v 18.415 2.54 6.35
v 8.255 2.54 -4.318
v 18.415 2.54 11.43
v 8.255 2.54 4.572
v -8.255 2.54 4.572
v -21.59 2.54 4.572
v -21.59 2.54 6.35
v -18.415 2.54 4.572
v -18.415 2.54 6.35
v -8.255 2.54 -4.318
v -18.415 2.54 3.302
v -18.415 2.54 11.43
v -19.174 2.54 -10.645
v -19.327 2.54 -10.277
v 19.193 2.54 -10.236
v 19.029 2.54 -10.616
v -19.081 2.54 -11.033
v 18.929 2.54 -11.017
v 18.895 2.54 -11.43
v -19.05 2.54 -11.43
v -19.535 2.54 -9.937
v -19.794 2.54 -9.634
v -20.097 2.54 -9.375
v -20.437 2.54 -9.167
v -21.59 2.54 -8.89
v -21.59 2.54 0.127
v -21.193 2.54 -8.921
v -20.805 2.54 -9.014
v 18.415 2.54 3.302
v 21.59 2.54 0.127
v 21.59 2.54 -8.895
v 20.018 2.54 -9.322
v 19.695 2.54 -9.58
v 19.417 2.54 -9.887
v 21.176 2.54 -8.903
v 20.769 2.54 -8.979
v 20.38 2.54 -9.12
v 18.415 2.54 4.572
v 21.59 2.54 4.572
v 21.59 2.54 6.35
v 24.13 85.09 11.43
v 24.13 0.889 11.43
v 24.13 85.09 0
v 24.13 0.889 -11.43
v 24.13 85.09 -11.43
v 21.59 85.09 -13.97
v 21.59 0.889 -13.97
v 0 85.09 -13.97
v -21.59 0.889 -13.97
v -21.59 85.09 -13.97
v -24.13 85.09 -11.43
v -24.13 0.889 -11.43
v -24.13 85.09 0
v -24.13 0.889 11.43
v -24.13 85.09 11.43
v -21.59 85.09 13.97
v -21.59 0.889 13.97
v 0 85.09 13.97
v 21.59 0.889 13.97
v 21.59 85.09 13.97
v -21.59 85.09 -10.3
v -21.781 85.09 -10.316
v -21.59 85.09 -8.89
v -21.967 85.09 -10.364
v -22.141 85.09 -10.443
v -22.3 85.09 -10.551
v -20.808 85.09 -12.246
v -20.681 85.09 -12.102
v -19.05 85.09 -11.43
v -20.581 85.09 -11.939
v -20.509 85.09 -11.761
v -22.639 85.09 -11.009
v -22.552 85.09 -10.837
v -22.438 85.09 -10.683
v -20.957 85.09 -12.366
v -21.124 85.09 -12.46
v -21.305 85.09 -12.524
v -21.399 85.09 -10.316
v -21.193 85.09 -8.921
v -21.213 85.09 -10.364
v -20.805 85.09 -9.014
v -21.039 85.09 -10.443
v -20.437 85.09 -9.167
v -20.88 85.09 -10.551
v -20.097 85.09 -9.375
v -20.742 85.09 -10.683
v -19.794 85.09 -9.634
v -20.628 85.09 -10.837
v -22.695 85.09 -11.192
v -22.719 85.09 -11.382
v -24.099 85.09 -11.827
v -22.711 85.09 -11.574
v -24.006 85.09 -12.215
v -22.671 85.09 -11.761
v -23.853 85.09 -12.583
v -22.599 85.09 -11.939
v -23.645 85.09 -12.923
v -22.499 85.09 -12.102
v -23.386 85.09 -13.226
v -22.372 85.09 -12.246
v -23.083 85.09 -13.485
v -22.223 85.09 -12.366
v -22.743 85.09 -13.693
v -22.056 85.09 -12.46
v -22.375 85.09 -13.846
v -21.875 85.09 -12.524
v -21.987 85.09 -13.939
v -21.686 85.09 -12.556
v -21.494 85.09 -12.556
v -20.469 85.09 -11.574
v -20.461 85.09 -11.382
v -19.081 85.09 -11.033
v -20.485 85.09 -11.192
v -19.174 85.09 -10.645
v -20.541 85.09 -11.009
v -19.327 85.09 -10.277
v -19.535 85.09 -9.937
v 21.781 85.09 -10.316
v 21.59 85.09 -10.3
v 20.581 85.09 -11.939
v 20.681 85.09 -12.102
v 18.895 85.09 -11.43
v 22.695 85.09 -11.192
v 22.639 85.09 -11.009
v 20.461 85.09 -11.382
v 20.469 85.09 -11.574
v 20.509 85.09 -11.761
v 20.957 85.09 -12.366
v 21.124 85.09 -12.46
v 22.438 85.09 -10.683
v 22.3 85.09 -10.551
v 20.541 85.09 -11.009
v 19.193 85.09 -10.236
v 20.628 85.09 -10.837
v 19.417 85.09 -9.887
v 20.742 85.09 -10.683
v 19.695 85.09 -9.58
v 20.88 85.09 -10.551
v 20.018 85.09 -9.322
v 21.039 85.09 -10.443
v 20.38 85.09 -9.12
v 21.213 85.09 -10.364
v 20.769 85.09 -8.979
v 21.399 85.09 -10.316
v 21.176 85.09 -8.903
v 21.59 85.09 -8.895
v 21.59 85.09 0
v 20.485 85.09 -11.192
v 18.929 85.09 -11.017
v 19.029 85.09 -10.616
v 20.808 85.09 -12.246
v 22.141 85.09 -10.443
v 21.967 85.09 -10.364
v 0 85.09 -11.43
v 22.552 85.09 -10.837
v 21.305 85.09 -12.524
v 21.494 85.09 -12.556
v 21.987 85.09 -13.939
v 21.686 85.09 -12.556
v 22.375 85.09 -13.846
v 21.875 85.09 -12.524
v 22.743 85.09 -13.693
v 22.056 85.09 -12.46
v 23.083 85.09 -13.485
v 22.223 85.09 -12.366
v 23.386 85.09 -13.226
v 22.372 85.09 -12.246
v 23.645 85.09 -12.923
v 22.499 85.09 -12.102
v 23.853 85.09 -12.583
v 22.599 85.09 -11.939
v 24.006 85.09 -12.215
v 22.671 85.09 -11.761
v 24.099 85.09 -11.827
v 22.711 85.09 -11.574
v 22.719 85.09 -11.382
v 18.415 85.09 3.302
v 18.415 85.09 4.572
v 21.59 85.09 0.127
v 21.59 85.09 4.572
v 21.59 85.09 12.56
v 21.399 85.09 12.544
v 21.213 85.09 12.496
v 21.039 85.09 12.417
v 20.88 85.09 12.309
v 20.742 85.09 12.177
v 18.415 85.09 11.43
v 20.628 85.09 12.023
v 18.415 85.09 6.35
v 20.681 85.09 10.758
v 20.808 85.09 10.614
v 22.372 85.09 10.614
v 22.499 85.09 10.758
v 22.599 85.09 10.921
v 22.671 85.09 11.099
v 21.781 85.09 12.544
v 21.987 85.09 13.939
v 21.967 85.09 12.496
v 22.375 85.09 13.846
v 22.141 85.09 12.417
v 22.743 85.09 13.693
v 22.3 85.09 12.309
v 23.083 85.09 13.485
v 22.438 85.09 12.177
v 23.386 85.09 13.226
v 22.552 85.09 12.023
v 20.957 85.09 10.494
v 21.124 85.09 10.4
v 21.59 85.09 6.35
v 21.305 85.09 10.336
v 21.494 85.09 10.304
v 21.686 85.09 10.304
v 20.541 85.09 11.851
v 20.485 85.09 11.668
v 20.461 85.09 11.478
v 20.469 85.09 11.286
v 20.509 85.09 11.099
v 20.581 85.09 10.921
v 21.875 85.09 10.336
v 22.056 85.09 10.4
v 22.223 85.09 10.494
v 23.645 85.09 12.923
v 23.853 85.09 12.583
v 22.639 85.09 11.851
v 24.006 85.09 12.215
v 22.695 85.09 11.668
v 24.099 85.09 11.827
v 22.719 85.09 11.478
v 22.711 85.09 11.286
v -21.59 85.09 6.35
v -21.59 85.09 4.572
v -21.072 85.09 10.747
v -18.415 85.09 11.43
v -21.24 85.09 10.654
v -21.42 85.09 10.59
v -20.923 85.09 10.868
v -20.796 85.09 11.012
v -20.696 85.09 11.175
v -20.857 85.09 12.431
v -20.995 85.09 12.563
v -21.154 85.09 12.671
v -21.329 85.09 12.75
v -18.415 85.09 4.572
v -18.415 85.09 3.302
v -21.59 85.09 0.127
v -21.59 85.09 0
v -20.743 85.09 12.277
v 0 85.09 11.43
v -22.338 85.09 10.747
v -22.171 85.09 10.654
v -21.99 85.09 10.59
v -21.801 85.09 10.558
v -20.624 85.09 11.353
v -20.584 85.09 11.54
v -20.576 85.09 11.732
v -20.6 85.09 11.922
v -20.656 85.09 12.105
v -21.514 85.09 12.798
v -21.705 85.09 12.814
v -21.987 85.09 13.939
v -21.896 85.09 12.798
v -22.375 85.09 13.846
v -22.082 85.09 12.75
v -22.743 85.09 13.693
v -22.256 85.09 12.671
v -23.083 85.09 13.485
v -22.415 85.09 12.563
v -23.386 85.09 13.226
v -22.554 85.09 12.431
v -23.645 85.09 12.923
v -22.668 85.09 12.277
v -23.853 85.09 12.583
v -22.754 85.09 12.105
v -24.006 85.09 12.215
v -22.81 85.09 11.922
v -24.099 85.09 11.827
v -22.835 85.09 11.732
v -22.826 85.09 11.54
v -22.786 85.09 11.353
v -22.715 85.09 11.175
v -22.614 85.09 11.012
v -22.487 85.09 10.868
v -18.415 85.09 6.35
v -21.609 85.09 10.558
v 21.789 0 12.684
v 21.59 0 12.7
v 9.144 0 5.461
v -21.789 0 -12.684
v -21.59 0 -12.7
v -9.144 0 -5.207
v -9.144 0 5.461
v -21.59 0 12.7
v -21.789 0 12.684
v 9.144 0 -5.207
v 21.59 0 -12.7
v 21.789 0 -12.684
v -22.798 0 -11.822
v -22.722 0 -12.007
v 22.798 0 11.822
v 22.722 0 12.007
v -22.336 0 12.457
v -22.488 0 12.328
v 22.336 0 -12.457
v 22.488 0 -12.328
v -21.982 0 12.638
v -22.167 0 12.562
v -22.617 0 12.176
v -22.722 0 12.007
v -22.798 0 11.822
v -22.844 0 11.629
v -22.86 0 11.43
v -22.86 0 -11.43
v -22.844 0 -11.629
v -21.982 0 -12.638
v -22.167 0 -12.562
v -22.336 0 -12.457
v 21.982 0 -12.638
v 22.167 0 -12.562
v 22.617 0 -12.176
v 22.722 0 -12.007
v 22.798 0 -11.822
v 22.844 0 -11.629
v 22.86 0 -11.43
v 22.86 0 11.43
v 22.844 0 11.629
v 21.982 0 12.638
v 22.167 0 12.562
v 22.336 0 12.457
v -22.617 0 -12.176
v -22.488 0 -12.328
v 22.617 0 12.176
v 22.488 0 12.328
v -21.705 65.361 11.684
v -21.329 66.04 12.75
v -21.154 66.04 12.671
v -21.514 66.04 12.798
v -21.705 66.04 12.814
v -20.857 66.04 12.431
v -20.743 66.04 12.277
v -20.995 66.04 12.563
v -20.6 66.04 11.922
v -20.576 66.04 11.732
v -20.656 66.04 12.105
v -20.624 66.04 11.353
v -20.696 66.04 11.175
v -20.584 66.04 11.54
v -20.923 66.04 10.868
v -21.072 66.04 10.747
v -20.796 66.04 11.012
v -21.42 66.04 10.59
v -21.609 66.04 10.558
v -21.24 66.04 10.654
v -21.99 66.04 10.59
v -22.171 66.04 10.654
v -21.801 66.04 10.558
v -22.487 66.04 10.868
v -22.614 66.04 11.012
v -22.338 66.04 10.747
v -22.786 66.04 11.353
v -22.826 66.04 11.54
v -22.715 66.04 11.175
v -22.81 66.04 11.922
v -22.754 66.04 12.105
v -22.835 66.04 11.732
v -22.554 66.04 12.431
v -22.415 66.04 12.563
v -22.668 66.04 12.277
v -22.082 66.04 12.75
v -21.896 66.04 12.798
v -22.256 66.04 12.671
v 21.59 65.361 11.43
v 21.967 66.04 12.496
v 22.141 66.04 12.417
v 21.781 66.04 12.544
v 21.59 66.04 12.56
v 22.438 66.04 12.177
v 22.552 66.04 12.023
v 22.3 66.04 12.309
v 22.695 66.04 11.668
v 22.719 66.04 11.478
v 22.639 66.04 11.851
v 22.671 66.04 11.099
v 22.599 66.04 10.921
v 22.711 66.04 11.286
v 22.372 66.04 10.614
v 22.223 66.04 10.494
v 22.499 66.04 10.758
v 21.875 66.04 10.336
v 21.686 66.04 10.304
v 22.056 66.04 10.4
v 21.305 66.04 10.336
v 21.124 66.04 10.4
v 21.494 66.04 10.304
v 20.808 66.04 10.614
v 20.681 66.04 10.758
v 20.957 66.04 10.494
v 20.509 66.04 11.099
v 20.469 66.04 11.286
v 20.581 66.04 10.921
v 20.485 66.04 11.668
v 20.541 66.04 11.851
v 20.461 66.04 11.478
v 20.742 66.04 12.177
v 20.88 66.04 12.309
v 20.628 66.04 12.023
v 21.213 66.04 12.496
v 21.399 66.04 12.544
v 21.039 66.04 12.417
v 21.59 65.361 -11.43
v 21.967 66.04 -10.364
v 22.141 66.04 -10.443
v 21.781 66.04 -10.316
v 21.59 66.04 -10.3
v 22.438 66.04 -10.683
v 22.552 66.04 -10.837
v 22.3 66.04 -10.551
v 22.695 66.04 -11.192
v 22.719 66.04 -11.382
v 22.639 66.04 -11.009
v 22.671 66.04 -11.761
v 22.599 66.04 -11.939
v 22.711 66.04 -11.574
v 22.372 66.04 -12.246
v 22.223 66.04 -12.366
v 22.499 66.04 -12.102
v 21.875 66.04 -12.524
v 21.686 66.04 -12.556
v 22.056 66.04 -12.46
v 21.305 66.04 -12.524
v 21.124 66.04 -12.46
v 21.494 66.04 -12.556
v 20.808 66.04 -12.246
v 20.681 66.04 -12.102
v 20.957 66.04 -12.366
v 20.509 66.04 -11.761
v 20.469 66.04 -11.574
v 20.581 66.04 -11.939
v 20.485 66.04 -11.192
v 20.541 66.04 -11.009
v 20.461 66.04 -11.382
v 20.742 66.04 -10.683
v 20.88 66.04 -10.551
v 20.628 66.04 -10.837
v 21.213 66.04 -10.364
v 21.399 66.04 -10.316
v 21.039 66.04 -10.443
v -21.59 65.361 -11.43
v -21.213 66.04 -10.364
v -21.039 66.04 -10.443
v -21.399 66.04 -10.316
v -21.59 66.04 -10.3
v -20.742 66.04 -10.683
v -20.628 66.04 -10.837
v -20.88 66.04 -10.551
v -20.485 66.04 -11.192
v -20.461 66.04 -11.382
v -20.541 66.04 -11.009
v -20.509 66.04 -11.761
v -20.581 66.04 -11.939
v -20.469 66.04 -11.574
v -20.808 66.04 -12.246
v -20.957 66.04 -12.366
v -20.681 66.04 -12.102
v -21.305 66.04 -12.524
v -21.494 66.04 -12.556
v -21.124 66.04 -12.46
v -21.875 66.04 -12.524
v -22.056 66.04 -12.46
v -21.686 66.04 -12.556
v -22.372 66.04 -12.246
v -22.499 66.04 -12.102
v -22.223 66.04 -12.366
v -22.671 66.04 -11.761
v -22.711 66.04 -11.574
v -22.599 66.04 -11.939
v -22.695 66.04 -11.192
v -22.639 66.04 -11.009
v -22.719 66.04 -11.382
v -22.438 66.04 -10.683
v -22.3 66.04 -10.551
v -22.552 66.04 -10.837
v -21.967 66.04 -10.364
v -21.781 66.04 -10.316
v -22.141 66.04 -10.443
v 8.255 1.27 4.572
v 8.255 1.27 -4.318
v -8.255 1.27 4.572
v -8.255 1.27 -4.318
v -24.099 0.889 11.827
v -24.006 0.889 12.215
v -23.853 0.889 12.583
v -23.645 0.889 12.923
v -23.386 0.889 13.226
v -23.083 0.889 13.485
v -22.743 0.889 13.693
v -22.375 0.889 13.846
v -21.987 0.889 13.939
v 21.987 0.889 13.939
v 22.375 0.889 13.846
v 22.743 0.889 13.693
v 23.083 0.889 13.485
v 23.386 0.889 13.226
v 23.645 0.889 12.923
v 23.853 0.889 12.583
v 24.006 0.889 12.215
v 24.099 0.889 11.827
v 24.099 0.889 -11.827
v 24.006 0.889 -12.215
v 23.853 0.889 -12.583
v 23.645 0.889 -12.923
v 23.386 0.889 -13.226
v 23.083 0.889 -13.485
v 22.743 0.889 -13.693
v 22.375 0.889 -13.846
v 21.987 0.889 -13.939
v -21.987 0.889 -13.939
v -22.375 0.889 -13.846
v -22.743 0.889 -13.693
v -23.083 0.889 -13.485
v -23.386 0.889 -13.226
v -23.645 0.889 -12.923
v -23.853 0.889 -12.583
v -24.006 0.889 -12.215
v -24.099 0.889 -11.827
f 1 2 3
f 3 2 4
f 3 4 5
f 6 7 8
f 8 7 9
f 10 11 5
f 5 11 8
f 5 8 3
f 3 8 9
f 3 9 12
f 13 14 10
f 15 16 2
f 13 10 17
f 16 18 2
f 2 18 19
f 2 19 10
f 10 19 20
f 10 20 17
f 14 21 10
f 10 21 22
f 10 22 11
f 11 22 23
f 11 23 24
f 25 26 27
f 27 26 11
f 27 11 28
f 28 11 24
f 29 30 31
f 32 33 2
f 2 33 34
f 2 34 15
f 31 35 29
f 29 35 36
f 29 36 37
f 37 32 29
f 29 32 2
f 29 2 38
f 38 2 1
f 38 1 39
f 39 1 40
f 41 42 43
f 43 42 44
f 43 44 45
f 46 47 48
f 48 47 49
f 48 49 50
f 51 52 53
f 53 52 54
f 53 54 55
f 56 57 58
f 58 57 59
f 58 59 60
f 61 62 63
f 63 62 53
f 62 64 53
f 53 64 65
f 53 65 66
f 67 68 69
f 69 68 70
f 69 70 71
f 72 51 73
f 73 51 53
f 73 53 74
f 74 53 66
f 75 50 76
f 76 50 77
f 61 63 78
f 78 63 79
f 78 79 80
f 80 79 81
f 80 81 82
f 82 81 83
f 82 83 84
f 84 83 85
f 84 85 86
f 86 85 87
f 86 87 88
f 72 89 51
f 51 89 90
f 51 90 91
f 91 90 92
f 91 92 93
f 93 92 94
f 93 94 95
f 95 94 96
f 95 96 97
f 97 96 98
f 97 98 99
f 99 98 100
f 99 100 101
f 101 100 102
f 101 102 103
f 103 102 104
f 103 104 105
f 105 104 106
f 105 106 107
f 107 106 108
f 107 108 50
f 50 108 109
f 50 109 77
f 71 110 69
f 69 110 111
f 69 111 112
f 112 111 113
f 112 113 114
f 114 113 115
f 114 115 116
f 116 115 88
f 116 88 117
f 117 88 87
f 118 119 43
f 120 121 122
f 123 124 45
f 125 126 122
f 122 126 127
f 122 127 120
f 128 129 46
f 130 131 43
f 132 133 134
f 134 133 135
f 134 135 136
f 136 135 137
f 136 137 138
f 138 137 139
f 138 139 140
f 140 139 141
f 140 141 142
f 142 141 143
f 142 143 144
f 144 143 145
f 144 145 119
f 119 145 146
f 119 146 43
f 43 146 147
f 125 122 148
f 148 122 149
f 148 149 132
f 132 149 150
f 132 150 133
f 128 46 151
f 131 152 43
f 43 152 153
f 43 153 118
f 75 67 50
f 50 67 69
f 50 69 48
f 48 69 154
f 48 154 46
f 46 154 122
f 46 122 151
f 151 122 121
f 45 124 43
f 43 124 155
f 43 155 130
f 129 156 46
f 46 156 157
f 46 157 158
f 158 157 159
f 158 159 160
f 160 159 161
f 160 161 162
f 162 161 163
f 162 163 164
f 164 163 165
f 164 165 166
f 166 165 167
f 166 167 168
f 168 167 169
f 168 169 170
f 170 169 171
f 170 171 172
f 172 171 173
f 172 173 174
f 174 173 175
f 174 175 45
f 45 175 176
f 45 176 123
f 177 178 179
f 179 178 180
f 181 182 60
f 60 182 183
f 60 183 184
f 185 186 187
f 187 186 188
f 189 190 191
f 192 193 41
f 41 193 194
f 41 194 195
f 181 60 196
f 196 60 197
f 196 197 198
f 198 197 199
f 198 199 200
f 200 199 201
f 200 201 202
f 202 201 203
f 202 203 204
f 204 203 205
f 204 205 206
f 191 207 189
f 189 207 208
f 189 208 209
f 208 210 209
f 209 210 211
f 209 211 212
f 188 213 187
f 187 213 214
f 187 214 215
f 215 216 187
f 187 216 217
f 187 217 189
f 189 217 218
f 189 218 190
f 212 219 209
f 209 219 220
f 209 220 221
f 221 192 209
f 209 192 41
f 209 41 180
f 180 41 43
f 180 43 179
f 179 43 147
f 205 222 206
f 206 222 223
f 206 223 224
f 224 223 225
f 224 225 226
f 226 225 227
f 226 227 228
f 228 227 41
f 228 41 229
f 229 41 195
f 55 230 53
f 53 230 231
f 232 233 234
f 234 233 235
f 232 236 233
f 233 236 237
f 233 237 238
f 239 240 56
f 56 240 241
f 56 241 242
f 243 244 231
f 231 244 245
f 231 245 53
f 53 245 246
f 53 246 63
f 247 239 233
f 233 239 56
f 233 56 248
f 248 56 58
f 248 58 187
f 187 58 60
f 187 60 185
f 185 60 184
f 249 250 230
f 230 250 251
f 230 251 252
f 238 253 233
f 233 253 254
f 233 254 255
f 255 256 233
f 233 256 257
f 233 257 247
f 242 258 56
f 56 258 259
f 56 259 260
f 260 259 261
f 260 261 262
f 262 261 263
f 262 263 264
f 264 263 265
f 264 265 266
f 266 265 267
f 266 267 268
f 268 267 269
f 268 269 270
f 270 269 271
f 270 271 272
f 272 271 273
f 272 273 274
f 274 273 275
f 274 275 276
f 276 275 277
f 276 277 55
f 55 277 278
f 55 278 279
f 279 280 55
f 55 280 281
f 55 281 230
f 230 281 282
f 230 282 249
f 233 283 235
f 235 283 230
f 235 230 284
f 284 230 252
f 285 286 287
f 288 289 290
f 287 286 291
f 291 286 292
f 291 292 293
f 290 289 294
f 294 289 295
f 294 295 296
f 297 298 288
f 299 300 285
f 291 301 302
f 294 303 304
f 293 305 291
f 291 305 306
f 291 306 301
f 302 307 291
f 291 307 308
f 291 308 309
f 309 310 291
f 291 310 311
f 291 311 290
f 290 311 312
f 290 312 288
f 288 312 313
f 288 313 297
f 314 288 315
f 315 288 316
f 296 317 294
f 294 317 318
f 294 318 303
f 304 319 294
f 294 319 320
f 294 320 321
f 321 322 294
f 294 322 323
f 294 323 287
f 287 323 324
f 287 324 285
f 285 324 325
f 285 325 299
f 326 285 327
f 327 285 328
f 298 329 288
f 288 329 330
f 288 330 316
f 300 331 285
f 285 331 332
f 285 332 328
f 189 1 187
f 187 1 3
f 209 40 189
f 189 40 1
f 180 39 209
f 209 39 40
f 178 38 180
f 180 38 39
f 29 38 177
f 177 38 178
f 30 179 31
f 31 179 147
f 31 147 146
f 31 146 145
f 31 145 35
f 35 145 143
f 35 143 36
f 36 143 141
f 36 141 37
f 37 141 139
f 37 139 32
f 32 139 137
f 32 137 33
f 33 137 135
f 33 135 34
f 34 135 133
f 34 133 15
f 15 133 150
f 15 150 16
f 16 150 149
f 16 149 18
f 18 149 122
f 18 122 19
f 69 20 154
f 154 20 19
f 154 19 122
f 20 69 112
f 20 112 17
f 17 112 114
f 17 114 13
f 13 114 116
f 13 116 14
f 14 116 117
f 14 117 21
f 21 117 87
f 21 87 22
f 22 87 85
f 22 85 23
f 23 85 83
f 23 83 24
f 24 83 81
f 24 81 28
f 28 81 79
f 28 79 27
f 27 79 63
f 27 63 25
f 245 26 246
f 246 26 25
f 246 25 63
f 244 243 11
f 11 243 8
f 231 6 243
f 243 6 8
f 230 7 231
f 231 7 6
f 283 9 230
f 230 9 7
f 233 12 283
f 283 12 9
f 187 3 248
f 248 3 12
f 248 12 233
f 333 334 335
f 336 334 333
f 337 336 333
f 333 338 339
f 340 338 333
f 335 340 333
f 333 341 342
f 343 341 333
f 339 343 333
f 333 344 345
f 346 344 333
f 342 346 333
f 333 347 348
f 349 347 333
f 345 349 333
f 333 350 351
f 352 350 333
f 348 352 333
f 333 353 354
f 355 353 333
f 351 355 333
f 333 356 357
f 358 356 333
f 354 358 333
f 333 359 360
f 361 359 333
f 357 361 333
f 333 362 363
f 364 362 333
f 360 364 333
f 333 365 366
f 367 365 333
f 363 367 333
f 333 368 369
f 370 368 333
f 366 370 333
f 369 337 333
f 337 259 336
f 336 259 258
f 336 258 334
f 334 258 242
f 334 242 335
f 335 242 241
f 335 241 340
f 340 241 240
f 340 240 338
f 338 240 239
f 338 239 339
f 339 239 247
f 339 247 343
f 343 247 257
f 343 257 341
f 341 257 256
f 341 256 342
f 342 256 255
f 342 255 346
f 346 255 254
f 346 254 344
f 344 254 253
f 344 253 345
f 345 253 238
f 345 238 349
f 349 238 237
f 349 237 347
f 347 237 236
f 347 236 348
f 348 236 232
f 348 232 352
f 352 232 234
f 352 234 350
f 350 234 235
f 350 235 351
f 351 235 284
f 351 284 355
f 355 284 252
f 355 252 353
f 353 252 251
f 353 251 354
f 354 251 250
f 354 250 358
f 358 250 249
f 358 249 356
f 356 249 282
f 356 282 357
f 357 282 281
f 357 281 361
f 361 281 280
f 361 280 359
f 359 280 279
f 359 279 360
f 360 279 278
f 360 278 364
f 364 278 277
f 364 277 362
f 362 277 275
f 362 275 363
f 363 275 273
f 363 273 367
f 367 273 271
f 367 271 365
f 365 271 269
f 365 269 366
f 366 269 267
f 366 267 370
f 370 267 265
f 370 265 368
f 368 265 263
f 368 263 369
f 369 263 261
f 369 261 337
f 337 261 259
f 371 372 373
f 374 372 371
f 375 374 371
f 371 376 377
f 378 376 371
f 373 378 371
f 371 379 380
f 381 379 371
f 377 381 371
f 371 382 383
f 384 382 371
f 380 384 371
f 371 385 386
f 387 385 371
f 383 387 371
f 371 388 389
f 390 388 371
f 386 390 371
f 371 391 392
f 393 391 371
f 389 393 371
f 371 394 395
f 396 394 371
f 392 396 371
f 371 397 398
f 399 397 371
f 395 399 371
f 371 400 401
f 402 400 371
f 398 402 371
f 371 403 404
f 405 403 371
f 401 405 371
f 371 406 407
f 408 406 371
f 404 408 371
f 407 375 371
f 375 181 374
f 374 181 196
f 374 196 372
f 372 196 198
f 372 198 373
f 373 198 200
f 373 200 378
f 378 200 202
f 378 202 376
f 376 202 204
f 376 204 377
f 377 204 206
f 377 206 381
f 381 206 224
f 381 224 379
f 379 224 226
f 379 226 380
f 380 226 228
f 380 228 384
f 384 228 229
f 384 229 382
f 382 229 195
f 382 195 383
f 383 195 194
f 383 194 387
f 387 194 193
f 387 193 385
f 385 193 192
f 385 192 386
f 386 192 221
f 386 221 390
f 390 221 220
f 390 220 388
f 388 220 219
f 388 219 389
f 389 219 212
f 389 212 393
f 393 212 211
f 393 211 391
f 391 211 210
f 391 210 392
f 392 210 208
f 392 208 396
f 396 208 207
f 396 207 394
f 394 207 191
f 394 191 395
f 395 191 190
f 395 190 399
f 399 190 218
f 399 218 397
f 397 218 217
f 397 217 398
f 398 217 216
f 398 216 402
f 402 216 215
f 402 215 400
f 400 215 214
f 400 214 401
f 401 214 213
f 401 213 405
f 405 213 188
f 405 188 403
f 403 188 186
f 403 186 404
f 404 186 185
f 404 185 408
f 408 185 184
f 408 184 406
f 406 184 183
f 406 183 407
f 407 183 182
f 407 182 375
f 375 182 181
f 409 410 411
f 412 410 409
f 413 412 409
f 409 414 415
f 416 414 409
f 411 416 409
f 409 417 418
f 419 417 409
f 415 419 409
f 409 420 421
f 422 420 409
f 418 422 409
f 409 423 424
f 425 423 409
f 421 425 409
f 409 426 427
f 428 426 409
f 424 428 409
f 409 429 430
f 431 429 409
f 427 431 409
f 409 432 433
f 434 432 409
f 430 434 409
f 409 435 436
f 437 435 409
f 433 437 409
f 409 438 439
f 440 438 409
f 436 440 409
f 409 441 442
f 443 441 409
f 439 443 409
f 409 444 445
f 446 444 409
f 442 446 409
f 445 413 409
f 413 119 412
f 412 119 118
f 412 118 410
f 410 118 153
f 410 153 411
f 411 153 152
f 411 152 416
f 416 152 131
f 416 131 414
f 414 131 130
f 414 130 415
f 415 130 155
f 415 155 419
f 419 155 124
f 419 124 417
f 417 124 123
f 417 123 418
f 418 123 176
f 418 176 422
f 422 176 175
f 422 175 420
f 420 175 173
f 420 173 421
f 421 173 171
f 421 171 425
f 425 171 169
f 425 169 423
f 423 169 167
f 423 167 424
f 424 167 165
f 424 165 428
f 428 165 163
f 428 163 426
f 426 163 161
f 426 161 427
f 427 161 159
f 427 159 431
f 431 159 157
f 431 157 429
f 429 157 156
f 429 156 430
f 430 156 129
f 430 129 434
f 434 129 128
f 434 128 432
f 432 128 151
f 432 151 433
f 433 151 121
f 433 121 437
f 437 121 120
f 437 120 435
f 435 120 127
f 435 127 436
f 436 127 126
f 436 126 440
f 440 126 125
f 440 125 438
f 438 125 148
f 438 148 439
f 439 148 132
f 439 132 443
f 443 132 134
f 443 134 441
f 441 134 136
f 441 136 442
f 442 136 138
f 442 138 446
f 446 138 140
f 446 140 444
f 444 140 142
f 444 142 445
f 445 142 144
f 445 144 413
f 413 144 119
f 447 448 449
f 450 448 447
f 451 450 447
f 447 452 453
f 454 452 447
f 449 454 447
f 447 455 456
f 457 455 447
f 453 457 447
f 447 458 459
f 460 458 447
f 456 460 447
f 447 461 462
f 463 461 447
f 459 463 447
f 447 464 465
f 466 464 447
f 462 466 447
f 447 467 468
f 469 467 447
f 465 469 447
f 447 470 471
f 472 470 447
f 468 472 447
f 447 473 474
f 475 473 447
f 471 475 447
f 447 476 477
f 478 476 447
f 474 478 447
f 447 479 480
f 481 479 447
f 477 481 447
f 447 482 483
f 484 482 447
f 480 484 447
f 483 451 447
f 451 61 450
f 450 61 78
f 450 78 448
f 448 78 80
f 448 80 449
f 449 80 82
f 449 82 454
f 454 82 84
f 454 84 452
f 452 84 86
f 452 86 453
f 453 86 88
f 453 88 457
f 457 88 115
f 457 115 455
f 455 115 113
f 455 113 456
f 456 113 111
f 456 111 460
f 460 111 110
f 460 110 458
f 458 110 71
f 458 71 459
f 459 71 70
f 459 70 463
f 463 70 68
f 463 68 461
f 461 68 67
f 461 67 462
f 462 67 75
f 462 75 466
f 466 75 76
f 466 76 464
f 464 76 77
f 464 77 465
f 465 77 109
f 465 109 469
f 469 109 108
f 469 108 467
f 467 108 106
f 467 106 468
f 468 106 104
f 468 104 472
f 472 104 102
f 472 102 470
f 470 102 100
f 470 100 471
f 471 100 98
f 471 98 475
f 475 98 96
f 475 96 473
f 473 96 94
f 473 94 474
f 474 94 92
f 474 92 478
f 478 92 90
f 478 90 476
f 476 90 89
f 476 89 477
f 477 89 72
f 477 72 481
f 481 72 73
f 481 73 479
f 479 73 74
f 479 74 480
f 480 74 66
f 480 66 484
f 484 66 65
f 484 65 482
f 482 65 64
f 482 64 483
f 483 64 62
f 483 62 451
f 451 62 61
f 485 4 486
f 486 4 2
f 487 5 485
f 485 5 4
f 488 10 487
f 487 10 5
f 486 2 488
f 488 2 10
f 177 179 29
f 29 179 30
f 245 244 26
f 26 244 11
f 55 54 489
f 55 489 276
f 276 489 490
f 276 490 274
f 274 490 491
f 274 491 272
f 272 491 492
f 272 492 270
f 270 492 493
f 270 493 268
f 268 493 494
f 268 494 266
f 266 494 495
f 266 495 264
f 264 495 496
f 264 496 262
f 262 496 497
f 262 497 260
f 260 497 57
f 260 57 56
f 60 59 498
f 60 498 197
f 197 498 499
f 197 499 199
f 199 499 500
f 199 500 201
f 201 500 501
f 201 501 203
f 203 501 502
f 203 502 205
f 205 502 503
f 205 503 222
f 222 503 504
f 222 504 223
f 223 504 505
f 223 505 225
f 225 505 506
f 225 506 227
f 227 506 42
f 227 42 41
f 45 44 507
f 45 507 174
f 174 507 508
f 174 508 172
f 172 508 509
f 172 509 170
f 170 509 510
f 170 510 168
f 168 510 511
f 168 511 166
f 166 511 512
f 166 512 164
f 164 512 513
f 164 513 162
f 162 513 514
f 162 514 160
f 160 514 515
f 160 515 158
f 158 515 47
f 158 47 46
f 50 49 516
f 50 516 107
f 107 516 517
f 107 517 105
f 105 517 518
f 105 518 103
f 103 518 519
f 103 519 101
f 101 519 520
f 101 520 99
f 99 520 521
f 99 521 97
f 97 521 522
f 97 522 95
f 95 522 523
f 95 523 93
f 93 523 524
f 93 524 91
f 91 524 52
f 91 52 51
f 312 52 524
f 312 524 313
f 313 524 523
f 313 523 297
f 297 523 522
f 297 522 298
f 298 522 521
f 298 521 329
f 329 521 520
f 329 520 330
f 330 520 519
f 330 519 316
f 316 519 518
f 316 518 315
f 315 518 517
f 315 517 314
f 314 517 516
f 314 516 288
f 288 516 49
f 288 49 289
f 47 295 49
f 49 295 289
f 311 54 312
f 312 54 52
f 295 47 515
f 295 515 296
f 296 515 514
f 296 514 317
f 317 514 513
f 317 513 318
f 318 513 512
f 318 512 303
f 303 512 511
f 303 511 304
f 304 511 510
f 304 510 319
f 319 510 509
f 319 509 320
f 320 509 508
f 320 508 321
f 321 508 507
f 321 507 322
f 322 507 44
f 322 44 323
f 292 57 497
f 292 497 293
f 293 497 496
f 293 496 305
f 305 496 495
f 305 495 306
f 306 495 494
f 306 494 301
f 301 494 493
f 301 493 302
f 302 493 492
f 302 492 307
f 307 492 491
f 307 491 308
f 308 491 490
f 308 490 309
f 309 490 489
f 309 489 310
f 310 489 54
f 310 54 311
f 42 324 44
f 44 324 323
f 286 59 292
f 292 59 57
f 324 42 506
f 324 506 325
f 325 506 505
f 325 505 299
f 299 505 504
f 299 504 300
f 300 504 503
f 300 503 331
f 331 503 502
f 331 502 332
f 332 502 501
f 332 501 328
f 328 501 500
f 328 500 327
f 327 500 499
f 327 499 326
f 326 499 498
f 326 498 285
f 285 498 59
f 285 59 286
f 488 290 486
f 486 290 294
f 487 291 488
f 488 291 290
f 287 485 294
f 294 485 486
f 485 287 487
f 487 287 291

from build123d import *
from OCP.BRepFilletAPI import BRepFilletAPI_MakeChamfer

# Parameters (mm, degrees)
SKETCH1_W                       = 48.26
SKETCH1_H                       = 27.94
BOSS_EXTRUDE1_DEPTH             = 85.09
CUT_EXTRUDE1_DEPTH              = 82.55
F_43_0_089_DIAMETER_HOLE1_D     = 2.2606
F_43_0_089_DIAMETER_HOLE1_DEPTH = 19.05
F_43_0_089_DIAMETER_HOLE1_TIP   = 0.679152758
SKETCH4_W                       = 16.51
SKETCH4_H                       = 8.89
CUT_EXTRUDE2_DEPTH              = 88.13162629
CHAMFER1_SIZE                   = 3.81
FILLET1_R                       = 2.54
CHAMFER2_SIZE                   = 1.27
CHAMFER2_SIZE2                  = 0.889263574


with BuildPart() as part:
    # Sketch1 → Boss-Extrude1 (new body)
    with BuildSketch(Plane(origin=(0, 0, 0), x_dir=(1, 0, 0), z_dir=(0, 1, 0))):
        Rectangle(SKETCH1_W, SKETCH1_H)
    extrude(amount=BOSS_EXTRUDE1_DEPTH)

    # Sketch3 → Cut-Extrude1 (cut)
    with BuildSketch(Plane(origin=(0, 85.09, 0), x_dir=(1, 0, 0), z_dir=(0, 1, 0))):
        with BuildLine():
            Line((21.59, 0.508), (18.415, 0.508))
            Line((18.415, 0.508), (18.415, -4.572))
            Line((18.415, -4.572), (21.59, -4.572))
            Line((21.59, -4.572), (21.59, -6.35))
            Line((21.59, -6.35), (18.415, -6.35))
            Line((18.415, -6.35), (18.415, -11.43))
            Line((18.415, -11.43), (-18.415, -11.43))
            Line((-18.415, -11.43), (-18.415, -6.35))
            Line((-18.415, -6.35), (-21.59, -6.35))
            Line((-21.59, -6.35), (-21.59, -4.572))
            Line((-21.59, -4.572), (-18.415, -4.572))
            Line((-18.415, -4.572), (-18.415, 0.508))
            Line((-18.415, 0.508), (-21.59, 0.508))
            Line((-21.59, 0.508), (-21.59, 8.89))
            ThreePointArc((-21.59, 8.89), (-19.793948776, 9.633948776), (-19.05, 11.43))
            Line((-19.05, 11.43), (18.895098563, 11.43))
            ThreePointArc((18.895098563, 11.43), (19.694674714, 9.57999329), (21.59, 8.894727718))
            Line((21.59, 8.894727718), (21.59, 0.508))
        make_face()
    extrude(amount=-CUT_EXTRUDE1_DEPTH, mode=Mode.SUBTRACT)

    # #43 (0.089) Diameter Hole1
    with Locations(Plane(origin=(0, 85.09, 0), x_dir=(1, 0, 0), z_dir=(0, 1, 0))):
        with Locations((-21.59, 11.43), (21.59, 11.43), (21.59, -11.43), (-21.705255142, -11.683941121)):
            Hole(F_43_0_089_DIAMETER_HOLE1_D / 2, depth=F_43_0_089_DIAMETER_HOLE1_DEPTH)
            with Locations((0, 0, -(F_43_0_089_DIAMETER_HOLE1_DEPTH + F_43_0_089_DIAMETER_HOLE1_TIP / 2))):  # 118° drill point
                Cone(0, F_43_0_089_DIAMETER_HOLE1_D / 2, F_43_0_089_DIAMETER_HOLE1_TIP, mode=Mode.SUBTRACT)

    # Sketch4 → Cut-Extrude2 (cut, through all)
    with BuildSketch(Plane(origin=(0, 2.54, 0), x_dir=(1, 0, 0), z_dir=(0, 1, 0))):
        with Locations((0, -0.127)):
            Rectangle(SKETCH4_W, SKETCH4_H)
    extrude(amount=-CUT_EXTRUDE2_DEPTH, mode=Mode.SUBTRACT)

    # Chamfer1
    # the kernel refuses this chamfer: 3.81 mm, written as the material it takes off along each edge
    with BuildSketch(Plane(origin=(18.415, 94.888112184, -0.508), x_dir=(0.9996219169112968, 0, -0.027495876610586445), z_dir=(0, -1, 0))) as chamfer1_piece_1_section:
        Polygon((CHAMFER1_SIZE * 0.999621916911, CHAMFER1_SIZE * 0.0274958766106), (-CHAMFER1_SIZE * 0.0274958766106, CHAMFER1_SIZE * 0.999621916911), (0, 0), align=None)
    chamfer1_piece_1 = extrude(amount=92.348112184, mode=Mode.PRIVATE)
    chamfer1_piece_1 = split(chamfer1_piece_1, bisect_by=Plane(origin=(21.59, 43.815, 0.792238095), z_dir=(-1, 0, 0)), keep=Keep.TOP, mode=Mode.PRIVATE)
    add(chamfer1_piece_1, mode=Mode.SUBTRACT)
    with BuildSketch(Plane(origin=(-18.415, 94.888112184, -0.508), x_dir=(-0.9996219169112968, 0, -0.027495876610586247), z_dir=(0, -1, 0))) as chamfer1_piece_2_section:
        Polygon((CHAMFER1_SIZE * 0.999621916911, -CHAMFER1_SIZE * 0.0274958766106), (-CHAMFER1_SIZE * 0.0274958766106, -CHAMFER1_SIZE * 0.999621916911), (0, 0), align=None)
    chamfer1_piece_2 = extrude(amount=92.348112184, mode=Mode.PRIVATE)
    chamfer1_piece_2 = split(chamfer1_piece_2, bisect_by=Plane(origin=(-21.59, 43.815, 0.792238095), z_dir=(1, 0, 0)), keep=Keep.TOP, mode=Mode.PRIVATE)
    add(chamfer1_piece_2, mode=Mode.SUBTRACT)

    # Fillet1
    fillet1_edges = [part.edges().sort_by_distance(p)[0] for p in [
        (24.13, 42.545, 13.97),
        (-24.13, 42.545, 13.97),
        (-24.13, 42.545, -13.97),
        (24.13, 42.545, -13.97),
    ]]
    fillet(fillet1_edges, radius=FILLET1_R)

    # Chamfer2: one chamfer whose edges measure the first distance from different faces: ONE call of the kernel's chamfer builder (chamfer() names one face for all edges)
    chamfer2_edges_1 = [part.edges().sort_by_distance(p)[0] for p in [
        (0, 0, 13.97),
        (24.13, 0, 0),
        (-24.13, 0, 0),
        (0, 0, -13.97),
        (-23.386051224, 0, -13.226051224),
        (23.386051224, 0, -13.226051224),
        (23.386051224, 0, 13.226051224),
        (-23.386051224, 0, 13.226051224),
    ]]
    chamfer2_side_1 = [part.faces().sort_by_distance(p)[0] for p in [
        (0, 0, 13.412355741),
    ]]
    chamfer2_edges_2 = [part.edges().sort_by_distance(p)[0] for p in [
        (8.255, 0, 0.127),
    ]]
    chamfer2_side_2 = [part.faces().sort_by_distance(p)[0] for p in [
        (8.255, 1.27, 0.127),
    ]]
    chamfer2_edges_3 = [part.edges().sort_by_distance(p)[0] for p in [
        (0, 0, 4.572),
    ]]
    chamfer2_side_3 = [part.faces().sort_by_distance(p)[0] for p in [
        (0, 1.27, 4.572),
    ]]
    chamfer2_edges_4 = [part.edges().sort_by_distance(p)[0] for p in [
        (-8.255, 0, 0.127),
    ]]
    chamfer2_side_4 = [part.faces().sort_by_distance(p)[0] for p in [
        (-8.255, 1.27, 0.127),
    ]]
    chamfer2_edges_5 = [part.edges().sort_by_distance(p)[0] for p in [
        (0, 0, -4.318),
    ]]
    chamfer2_side_5 = [part.faces().sort_by_distance(p)[0] for p in [
        (0, 1.27, -4.318),
    ]]
    chamfer2 = BRepFilletAPI_MakeChamfer(part.part.solid().wrapped)
    for e in chamfer2_edges_1:
        chamfer2.Add(CHAMFER2_SIZE, CHAMFER2_SIZE2, e.wrapped, chamfer2_side_1[0].wrapped)  # the first distance lies on this face
    for e in chamfer2_edges_2:
        chamfer2.Add(CHAMFER2_SIZE, CHAMFER2_SIZE2, e.wrapped, chamfer2_side_2[0].wrapped)  # the first distance lies on this face
    for e in chamfer2_edges_3:
        chamfer2.Add(CHAMFER2_SIZE, CHAMFER2_SIZE2, e.wrapped, chamfer2_side_3[0].wrapped)  # the first distance lies on this face
    for e in chamfer2_edges_4:
        chamfer2.Add(CHAMFER2_SIZE, CHAMFER2_SIZE2, e.wrapped, chamfer2_side_4[0].wrapped)  # the first distance lies on this face
    for e in chamfer2_edges_5:
        chamfer2.Add(CHAMFER2_SIZE, CHAMFER2_SIZE2, e.wrapped, chamfer2_side_5[0].wrapped)  # the first distance lies on this face
    add(Compound.cast(chamfer2.Shape()), mode=Mode.REPLACE)


solid = part.part
